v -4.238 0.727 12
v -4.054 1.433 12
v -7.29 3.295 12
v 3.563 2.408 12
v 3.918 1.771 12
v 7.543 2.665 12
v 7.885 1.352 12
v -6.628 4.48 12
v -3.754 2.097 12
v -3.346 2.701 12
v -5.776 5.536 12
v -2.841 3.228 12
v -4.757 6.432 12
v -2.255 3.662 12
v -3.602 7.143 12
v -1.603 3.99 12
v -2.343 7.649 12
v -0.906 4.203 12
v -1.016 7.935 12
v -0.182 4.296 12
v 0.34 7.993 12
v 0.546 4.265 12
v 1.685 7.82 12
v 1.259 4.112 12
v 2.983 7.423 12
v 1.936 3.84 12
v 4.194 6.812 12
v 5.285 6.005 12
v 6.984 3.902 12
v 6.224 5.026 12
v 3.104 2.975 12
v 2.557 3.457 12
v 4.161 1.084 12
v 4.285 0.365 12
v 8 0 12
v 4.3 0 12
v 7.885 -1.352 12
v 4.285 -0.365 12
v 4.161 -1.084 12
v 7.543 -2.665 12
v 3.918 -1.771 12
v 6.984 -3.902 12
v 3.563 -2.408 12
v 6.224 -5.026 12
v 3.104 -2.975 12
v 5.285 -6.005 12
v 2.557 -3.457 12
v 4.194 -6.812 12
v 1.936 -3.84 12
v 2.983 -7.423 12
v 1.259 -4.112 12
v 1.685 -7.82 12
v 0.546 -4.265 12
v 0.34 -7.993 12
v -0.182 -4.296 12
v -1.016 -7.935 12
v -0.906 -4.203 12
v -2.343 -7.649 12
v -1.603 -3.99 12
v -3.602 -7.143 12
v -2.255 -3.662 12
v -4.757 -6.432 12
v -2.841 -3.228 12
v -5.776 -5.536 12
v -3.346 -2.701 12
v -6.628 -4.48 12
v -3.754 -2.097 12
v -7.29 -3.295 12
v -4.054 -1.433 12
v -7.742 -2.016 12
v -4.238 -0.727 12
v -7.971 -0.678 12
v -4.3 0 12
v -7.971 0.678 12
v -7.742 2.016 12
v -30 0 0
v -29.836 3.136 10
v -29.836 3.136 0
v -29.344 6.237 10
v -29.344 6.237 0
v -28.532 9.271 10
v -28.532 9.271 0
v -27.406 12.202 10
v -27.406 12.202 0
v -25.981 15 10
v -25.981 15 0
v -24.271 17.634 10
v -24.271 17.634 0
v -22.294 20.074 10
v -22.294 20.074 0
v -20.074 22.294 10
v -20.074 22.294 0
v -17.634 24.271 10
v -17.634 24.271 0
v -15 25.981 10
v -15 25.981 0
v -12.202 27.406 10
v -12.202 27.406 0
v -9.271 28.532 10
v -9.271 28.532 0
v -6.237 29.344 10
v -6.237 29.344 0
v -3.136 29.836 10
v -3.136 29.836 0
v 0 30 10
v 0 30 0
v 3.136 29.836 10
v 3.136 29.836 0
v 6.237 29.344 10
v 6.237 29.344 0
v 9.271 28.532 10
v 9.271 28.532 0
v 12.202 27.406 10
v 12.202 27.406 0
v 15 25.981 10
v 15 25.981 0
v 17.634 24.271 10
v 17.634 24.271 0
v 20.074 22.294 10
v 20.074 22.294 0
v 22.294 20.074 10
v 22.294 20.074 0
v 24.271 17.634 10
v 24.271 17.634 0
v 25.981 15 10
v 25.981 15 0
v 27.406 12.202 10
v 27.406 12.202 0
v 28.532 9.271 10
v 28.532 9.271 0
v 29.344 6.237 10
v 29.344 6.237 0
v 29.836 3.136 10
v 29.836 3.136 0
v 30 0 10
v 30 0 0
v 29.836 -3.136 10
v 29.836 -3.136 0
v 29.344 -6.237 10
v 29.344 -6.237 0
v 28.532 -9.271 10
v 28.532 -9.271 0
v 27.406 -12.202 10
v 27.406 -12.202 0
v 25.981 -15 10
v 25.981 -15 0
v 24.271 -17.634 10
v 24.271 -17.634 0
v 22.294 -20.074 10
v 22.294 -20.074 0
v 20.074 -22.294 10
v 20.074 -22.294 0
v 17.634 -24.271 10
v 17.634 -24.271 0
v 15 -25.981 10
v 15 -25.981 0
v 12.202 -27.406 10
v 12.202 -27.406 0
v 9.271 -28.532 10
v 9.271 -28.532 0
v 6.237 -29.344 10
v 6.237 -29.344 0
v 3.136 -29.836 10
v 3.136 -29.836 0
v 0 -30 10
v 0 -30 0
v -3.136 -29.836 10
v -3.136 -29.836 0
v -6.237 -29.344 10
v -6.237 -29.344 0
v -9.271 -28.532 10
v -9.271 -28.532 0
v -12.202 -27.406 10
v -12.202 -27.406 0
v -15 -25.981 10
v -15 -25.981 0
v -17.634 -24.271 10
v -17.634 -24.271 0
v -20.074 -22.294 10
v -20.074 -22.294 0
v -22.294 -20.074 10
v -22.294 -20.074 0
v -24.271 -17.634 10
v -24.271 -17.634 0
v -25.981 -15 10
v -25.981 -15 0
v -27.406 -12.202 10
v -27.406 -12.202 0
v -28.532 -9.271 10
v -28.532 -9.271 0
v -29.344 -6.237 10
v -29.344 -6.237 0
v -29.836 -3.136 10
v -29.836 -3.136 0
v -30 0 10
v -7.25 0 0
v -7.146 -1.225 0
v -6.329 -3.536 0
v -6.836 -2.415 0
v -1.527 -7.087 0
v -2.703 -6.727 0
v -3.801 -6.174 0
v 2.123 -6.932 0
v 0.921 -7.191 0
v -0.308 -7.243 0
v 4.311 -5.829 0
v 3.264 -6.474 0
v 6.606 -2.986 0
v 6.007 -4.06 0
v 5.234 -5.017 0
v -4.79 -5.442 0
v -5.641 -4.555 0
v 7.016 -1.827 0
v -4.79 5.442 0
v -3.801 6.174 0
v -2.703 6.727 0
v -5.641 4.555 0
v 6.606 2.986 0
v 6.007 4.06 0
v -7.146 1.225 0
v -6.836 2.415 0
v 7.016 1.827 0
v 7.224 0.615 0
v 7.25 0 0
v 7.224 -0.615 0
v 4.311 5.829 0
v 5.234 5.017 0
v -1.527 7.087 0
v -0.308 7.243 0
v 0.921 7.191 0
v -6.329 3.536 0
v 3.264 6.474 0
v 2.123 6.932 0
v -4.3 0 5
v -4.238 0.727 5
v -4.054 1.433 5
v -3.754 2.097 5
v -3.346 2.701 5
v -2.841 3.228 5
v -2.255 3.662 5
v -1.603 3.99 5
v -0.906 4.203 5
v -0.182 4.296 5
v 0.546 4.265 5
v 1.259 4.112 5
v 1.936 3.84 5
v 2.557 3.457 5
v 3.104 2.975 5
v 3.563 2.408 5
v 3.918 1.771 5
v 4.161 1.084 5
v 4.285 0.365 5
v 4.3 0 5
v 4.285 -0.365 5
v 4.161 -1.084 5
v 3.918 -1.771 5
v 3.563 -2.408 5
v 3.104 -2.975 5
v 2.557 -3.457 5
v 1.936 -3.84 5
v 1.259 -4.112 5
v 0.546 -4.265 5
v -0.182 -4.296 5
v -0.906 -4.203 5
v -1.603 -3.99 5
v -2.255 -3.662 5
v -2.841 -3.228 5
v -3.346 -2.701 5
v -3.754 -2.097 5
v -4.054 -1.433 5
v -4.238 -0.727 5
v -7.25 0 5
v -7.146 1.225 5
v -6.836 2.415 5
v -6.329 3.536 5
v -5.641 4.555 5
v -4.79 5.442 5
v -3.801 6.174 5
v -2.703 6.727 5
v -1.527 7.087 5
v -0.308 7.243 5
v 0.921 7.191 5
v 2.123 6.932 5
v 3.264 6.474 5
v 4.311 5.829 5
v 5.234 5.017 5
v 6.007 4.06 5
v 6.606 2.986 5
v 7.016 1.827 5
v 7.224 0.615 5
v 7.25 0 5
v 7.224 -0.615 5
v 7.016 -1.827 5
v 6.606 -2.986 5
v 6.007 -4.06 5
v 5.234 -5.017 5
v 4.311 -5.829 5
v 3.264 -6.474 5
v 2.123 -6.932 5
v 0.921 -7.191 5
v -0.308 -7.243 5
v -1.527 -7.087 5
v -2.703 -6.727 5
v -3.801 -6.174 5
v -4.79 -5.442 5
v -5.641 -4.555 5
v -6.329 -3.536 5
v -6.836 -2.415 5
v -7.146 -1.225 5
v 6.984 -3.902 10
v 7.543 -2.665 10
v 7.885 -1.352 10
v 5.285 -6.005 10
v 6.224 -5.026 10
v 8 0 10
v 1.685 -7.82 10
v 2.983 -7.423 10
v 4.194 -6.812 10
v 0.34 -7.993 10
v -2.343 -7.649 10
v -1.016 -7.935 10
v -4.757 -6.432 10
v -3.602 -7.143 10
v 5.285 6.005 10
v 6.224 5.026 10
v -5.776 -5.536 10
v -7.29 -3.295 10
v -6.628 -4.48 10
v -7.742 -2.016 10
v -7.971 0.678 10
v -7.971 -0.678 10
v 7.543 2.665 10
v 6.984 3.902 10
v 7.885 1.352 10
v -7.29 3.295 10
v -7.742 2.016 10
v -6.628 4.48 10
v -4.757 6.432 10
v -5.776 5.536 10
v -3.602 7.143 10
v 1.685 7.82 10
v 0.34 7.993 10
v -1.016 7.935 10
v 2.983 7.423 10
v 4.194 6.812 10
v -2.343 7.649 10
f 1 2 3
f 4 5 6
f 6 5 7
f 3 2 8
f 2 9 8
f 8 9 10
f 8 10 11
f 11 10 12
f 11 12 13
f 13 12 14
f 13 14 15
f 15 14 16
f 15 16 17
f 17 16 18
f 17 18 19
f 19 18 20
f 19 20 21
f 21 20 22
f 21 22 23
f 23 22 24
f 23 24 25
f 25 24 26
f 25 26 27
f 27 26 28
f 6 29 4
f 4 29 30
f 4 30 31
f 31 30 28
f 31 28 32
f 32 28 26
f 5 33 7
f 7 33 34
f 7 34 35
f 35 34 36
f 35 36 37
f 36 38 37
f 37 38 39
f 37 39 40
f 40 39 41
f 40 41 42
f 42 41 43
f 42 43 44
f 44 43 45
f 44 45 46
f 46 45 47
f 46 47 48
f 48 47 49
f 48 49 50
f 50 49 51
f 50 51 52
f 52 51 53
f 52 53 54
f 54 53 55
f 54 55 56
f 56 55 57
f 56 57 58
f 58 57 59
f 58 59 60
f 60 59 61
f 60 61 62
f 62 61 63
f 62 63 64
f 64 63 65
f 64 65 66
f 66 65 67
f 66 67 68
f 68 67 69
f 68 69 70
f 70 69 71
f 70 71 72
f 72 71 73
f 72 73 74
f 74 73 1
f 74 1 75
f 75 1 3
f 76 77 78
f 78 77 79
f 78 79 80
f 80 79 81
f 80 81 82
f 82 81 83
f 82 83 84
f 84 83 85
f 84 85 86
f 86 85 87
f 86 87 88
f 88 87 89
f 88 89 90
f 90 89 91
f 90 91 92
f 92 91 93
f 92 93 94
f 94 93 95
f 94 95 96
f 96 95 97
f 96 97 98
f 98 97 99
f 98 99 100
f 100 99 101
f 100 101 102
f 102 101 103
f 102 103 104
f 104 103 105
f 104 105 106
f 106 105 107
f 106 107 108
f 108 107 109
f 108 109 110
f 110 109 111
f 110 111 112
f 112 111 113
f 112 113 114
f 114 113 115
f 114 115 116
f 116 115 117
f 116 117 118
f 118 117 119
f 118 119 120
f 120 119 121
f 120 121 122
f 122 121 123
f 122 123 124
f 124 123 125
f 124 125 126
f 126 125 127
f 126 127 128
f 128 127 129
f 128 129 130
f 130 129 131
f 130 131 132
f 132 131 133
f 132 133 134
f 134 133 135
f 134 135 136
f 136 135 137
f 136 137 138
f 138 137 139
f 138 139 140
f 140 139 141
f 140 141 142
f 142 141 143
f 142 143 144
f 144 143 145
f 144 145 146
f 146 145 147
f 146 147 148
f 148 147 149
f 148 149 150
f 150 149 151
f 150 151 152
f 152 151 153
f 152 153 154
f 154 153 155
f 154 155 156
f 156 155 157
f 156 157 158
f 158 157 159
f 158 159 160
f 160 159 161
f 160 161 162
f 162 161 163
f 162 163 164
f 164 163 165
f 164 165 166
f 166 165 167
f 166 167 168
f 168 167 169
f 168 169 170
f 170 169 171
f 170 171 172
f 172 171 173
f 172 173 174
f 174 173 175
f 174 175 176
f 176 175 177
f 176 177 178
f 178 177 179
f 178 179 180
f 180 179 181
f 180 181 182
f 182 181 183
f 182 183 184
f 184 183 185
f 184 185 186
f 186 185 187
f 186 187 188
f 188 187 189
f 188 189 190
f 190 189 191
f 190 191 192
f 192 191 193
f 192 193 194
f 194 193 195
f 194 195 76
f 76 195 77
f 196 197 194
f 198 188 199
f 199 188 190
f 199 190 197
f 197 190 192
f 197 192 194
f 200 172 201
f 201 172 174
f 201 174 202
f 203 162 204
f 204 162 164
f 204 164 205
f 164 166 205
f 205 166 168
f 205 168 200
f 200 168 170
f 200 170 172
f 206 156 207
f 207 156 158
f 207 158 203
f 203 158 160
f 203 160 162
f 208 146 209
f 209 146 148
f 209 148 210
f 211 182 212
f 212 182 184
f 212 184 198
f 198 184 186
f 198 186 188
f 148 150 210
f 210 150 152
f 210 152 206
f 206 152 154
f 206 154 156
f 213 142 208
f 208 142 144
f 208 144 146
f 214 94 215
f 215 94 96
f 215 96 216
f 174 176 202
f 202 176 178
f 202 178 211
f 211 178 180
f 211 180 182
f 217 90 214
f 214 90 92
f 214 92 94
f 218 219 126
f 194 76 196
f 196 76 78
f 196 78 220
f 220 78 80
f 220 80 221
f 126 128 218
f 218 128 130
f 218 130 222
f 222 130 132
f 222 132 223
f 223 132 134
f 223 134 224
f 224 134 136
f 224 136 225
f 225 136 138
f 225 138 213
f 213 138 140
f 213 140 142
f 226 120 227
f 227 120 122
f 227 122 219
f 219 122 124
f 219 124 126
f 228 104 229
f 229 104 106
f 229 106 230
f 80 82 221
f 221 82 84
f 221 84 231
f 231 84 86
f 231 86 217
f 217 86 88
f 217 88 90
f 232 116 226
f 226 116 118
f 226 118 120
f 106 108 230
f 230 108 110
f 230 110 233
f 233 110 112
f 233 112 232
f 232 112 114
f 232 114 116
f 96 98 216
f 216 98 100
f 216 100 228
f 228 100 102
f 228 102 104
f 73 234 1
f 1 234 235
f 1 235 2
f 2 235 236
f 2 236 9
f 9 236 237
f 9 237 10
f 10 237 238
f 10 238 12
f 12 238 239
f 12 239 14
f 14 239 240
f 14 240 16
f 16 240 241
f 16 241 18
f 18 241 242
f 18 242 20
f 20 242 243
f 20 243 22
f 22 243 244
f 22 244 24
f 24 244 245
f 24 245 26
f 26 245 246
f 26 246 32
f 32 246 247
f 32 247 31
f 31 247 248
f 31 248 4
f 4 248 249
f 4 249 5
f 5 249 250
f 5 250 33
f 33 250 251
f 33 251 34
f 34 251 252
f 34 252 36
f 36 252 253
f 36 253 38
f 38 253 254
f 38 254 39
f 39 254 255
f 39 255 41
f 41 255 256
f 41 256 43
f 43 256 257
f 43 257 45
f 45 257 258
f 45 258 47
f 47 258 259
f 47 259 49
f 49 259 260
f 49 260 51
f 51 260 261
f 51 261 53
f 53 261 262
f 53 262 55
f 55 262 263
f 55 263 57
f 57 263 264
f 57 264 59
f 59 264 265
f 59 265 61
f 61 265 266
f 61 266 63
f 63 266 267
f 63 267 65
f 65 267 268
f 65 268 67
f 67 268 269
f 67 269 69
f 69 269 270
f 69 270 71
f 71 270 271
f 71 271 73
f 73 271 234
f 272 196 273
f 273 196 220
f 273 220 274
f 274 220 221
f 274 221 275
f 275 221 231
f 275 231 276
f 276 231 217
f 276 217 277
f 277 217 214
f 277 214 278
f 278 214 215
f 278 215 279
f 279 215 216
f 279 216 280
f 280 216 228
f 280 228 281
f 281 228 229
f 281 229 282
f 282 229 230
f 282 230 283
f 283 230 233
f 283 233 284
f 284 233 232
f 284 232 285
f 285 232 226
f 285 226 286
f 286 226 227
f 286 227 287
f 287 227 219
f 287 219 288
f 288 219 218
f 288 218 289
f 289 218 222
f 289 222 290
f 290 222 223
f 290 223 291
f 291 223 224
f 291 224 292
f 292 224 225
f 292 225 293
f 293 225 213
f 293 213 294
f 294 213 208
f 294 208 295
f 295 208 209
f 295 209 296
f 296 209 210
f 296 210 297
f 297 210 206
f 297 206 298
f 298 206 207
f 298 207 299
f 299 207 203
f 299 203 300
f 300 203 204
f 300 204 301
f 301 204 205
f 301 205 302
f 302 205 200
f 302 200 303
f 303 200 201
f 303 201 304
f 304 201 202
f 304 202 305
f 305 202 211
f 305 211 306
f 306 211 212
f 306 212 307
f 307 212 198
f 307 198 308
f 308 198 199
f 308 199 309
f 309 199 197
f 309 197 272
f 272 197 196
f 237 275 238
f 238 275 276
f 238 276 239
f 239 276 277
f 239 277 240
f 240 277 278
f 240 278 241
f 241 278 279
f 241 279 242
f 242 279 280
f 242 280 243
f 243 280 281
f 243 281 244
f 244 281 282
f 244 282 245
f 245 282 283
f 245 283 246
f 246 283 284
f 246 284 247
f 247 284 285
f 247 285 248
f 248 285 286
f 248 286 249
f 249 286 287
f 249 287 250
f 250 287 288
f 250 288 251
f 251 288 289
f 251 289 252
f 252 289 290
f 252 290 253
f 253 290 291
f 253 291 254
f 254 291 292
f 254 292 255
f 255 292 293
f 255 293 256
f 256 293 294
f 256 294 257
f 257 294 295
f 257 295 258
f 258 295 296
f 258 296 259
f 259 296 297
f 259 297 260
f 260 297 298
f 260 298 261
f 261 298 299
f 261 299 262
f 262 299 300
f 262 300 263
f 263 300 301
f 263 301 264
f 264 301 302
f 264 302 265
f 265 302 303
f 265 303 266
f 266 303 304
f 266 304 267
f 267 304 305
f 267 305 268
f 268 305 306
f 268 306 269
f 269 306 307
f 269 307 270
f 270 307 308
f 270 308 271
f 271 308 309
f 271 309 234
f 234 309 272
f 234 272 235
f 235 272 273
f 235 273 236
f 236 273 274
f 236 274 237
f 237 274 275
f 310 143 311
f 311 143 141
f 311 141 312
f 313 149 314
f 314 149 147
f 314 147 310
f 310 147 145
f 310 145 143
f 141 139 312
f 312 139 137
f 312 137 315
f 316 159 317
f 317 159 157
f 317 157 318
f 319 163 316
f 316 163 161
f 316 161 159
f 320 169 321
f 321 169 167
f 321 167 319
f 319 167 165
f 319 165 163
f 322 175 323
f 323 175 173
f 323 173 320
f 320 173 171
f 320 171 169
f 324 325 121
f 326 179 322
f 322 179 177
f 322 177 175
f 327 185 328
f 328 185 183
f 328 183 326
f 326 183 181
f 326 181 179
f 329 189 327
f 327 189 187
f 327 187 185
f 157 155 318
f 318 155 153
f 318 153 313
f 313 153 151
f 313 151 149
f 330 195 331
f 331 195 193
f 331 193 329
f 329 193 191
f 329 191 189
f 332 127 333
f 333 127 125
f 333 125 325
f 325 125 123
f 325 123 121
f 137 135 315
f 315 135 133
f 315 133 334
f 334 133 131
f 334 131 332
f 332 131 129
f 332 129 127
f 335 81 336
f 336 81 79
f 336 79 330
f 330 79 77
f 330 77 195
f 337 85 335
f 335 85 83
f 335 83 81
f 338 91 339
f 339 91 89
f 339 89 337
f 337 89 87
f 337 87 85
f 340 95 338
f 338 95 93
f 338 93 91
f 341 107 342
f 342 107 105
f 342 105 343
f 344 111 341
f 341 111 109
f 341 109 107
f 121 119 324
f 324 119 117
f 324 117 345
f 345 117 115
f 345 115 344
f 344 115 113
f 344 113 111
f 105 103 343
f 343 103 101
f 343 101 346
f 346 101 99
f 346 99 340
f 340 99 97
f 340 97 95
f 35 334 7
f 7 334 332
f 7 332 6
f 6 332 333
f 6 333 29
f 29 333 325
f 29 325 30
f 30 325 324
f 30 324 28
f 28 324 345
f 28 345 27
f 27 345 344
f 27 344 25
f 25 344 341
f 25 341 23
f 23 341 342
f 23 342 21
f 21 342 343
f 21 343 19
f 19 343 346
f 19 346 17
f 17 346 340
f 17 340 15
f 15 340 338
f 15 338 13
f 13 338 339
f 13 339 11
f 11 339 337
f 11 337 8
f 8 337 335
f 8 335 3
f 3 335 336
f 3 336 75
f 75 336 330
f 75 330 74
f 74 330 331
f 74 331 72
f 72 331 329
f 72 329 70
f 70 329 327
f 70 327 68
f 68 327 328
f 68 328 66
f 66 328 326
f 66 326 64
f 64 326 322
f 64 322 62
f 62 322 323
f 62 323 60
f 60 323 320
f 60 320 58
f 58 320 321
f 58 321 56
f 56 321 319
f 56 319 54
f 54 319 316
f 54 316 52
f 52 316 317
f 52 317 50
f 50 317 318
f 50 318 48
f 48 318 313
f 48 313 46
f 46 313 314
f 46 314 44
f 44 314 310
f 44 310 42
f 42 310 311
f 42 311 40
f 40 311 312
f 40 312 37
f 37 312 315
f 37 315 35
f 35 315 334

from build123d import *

# Parameters (mm, degrees)
SKETCH1_R           = 30
SKETCH1_R_2         = 4.3
BOSS_EXTRUDE1_DEPTH = 12
SKETCH2_R           = 7.25
CUT_EXTRUDE1_DEPTH  = 5
SKETCH3_R           = 30
SKETCH3_R_2         = 8
CUT_EXTRUDE2_DEPTH  = 2


with BuildPart() as part:
    # Sketch1 → Boss-Extrude1 (new body)
    with BuildSketch(Plane.XY):
        Circle(SKETCH1_R)
        Circle(SKETCH1_R_2, mode=Mode.SUBTRACT)
    extrude(amount=BOSS_EXTRUDE1_DEPTH)

    # Sketch2 → Cut-Extrude1 (cut)
    with BuildSketch(Plane.XY):
        Circle(SKETCH2_R)
    extrude(amount=CUT_EXTRUDE1_DEPTH, mode=Mode.SUBTRACT)

    # Sketch3 → Cut-Extrude2 (cut)
    with BuildSketch(Plane.XY.offset(12)):
        Circle(SKETCH3_R)
        Circle(SKETCH3_R_2, mode=Mode.SUBTRACT)
    extrude(amount=-CUT_EXTRUDE2_DEPTH, mode=Mode.SUBTRACT)


solid = part.part
